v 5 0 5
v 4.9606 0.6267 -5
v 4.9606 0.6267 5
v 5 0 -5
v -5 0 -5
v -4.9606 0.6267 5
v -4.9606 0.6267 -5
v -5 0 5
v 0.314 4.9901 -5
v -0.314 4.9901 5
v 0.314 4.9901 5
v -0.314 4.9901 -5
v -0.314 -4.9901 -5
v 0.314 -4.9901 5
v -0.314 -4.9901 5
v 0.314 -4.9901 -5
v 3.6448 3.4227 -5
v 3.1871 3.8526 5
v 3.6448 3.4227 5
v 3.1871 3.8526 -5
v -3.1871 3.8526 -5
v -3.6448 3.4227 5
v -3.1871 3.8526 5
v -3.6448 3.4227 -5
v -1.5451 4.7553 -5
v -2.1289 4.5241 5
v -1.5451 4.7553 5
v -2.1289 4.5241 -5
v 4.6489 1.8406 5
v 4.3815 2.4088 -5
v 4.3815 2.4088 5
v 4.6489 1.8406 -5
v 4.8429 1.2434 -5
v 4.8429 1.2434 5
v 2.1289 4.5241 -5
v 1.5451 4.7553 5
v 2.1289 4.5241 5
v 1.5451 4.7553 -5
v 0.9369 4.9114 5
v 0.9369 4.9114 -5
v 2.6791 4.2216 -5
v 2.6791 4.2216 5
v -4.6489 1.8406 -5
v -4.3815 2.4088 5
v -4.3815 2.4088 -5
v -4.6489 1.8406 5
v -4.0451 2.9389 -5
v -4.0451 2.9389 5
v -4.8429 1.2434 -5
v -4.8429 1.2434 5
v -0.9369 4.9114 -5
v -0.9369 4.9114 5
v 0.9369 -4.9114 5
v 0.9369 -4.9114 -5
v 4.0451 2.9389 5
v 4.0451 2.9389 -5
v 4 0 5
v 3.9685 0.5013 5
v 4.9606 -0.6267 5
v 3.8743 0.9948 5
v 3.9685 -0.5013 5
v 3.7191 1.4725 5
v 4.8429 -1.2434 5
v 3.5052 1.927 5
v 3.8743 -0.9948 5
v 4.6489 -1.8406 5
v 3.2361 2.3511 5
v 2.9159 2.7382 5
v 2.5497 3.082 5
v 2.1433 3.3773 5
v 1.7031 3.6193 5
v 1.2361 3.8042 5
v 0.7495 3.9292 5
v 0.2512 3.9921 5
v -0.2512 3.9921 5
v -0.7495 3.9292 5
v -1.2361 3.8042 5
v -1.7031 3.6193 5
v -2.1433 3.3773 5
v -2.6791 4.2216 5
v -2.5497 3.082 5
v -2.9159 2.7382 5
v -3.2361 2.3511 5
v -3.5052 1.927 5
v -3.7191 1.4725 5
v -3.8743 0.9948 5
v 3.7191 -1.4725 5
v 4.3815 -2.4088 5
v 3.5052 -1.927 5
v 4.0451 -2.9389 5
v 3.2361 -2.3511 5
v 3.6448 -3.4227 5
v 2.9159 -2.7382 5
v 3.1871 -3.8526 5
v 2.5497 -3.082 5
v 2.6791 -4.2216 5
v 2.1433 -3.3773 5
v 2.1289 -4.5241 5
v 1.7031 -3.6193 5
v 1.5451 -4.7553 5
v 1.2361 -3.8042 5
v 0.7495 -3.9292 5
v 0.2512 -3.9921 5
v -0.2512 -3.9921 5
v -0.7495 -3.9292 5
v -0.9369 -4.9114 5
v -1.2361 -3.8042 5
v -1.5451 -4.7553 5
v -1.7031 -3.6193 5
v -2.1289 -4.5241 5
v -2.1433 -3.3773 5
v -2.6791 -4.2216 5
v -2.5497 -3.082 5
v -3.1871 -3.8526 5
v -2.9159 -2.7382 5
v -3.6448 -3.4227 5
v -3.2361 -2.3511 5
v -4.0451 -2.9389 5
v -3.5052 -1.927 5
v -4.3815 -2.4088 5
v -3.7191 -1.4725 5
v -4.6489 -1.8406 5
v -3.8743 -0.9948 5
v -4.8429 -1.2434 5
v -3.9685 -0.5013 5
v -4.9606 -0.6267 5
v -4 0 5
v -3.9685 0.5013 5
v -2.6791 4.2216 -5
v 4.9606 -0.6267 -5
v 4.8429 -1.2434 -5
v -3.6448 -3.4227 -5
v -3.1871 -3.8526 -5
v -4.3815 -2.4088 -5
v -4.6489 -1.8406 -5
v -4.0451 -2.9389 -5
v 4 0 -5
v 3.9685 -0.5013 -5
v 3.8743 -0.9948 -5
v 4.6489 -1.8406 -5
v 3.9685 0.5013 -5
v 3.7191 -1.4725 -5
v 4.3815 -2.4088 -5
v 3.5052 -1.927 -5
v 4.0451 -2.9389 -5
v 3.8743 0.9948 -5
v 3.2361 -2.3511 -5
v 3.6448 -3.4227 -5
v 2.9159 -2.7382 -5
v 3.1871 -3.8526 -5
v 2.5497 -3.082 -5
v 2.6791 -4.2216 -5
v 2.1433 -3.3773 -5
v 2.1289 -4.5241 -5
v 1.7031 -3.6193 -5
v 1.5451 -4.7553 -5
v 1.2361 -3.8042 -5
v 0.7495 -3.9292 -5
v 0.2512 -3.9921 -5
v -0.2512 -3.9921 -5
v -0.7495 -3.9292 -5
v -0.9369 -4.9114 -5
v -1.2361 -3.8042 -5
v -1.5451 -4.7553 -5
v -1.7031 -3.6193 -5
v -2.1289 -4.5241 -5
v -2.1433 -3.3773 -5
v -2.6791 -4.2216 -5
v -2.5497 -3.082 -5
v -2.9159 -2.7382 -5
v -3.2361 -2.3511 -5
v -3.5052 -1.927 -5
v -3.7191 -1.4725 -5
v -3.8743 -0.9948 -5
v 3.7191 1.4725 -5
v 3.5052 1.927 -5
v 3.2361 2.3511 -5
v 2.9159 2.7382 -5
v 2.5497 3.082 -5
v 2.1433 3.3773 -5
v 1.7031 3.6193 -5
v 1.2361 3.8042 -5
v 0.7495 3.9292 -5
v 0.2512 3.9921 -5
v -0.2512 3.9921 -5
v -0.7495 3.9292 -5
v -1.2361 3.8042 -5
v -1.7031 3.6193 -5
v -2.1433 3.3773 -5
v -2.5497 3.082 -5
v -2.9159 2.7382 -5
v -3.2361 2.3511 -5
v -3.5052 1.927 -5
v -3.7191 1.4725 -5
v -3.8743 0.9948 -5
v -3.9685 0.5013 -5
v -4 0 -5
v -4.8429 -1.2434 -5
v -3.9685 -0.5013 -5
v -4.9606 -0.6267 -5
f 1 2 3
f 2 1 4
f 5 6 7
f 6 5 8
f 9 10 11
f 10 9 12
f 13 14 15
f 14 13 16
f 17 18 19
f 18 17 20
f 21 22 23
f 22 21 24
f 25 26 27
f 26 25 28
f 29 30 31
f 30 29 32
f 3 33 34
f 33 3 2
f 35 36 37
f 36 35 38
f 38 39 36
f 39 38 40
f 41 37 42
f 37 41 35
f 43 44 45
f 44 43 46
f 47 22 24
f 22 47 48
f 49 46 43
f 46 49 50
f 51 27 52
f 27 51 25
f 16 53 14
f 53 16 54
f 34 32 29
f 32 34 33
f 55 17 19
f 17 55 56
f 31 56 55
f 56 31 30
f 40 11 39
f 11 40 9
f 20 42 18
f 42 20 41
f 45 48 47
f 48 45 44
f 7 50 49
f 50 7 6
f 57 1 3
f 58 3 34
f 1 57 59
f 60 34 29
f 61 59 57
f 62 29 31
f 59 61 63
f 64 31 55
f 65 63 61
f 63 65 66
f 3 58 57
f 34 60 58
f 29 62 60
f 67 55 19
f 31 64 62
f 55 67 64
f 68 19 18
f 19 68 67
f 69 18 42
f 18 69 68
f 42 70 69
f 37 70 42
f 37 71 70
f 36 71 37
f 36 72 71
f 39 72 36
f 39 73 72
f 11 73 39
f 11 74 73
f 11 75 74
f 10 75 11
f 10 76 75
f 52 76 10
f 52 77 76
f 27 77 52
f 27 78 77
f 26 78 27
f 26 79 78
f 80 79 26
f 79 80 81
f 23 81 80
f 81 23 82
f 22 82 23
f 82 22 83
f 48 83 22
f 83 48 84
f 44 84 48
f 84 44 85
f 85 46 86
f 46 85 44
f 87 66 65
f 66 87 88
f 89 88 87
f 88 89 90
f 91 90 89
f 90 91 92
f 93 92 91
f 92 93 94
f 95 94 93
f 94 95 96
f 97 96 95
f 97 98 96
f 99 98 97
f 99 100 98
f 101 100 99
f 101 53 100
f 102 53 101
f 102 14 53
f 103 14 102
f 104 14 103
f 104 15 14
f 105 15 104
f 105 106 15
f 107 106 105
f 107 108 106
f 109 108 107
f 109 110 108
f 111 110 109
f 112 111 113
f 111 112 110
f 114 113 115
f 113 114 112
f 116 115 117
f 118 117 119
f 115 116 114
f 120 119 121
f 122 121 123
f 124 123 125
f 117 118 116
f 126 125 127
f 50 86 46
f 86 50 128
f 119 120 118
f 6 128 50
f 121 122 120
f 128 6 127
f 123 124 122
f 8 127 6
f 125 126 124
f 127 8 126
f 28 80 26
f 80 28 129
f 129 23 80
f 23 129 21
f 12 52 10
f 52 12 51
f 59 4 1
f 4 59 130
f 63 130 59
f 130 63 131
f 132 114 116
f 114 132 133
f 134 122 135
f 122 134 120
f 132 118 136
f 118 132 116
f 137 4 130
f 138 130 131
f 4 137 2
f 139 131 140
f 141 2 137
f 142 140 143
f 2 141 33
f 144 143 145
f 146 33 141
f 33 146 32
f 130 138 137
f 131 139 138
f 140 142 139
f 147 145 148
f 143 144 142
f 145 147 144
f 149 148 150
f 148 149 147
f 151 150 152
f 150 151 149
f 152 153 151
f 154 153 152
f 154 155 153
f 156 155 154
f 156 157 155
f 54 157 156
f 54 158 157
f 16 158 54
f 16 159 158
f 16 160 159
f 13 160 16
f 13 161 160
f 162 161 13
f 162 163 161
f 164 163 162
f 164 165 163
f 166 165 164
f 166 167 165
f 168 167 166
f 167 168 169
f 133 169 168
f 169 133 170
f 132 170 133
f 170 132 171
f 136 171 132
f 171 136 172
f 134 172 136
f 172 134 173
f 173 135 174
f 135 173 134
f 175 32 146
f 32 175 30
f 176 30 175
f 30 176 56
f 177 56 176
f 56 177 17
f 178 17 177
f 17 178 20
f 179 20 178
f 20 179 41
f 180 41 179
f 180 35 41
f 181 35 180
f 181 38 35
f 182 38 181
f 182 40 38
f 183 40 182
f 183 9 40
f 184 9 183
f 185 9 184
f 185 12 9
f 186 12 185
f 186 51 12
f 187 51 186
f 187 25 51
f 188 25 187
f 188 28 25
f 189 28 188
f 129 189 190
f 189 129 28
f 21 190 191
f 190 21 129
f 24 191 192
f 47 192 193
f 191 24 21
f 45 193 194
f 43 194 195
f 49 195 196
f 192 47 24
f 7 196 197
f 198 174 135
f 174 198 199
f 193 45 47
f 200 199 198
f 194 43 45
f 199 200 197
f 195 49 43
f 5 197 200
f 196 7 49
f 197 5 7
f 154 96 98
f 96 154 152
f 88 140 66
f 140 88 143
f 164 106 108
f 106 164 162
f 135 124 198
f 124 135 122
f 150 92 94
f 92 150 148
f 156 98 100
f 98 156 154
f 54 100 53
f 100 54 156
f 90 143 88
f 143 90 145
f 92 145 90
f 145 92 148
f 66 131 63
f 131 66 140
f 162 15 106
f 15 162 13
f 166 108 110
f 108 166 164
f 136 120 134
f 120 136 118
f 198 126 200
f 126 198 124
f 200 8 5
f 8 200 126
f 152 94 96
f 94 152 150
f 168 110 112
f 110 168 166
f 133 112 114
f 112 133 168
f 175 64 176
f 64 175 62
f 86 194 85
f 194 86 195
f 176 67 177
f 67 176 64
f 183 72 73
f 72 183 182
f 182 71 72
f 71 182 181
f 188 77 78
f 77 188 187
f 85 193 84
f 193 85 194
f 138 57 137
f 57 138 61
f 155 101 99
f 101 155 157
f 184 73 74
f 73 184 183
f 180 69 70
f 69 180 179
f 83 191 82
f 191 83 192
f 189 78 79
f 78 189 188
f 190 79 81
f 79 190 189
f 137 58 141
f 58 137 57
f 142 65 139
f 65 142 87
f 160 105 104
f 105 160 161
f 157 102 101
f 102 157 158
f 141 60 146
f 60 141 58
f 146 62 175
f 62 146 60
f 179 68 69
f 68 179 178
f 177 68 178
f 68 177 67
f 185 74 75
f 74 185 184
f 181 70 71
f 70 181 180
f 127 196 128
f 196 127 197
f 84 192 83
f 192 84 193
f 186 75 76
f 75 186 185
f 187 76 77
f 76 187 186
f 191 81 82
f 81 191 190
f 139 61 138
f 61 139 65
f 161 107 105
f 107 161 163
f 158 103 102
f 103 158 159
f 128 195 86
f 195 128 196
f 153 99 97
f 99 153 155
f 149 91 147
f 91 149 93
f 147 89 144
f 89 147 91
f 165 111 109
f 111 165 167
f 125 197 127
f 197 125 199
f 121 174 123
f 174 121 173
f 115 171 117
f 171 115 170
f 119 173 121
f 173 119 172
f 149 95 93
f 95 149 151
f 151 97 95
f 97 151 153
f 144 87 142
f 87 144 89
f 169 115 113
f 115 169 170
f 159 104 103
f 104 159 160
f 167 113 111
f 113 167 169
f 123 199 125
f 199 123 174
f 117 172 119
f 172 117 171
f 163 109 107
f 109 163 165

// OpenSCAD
$fn = 50;


difference() {
	union() {
		translate(v = [0, 0, -5.0000000000]) {
			cylinder(h = 10, r = 5.0000000000);
		}
	}
	union() {
		translate(v = [0, 0, -100.0000000000]) {
			cylinder(h = 200, r = 4);
		}
	}
}
